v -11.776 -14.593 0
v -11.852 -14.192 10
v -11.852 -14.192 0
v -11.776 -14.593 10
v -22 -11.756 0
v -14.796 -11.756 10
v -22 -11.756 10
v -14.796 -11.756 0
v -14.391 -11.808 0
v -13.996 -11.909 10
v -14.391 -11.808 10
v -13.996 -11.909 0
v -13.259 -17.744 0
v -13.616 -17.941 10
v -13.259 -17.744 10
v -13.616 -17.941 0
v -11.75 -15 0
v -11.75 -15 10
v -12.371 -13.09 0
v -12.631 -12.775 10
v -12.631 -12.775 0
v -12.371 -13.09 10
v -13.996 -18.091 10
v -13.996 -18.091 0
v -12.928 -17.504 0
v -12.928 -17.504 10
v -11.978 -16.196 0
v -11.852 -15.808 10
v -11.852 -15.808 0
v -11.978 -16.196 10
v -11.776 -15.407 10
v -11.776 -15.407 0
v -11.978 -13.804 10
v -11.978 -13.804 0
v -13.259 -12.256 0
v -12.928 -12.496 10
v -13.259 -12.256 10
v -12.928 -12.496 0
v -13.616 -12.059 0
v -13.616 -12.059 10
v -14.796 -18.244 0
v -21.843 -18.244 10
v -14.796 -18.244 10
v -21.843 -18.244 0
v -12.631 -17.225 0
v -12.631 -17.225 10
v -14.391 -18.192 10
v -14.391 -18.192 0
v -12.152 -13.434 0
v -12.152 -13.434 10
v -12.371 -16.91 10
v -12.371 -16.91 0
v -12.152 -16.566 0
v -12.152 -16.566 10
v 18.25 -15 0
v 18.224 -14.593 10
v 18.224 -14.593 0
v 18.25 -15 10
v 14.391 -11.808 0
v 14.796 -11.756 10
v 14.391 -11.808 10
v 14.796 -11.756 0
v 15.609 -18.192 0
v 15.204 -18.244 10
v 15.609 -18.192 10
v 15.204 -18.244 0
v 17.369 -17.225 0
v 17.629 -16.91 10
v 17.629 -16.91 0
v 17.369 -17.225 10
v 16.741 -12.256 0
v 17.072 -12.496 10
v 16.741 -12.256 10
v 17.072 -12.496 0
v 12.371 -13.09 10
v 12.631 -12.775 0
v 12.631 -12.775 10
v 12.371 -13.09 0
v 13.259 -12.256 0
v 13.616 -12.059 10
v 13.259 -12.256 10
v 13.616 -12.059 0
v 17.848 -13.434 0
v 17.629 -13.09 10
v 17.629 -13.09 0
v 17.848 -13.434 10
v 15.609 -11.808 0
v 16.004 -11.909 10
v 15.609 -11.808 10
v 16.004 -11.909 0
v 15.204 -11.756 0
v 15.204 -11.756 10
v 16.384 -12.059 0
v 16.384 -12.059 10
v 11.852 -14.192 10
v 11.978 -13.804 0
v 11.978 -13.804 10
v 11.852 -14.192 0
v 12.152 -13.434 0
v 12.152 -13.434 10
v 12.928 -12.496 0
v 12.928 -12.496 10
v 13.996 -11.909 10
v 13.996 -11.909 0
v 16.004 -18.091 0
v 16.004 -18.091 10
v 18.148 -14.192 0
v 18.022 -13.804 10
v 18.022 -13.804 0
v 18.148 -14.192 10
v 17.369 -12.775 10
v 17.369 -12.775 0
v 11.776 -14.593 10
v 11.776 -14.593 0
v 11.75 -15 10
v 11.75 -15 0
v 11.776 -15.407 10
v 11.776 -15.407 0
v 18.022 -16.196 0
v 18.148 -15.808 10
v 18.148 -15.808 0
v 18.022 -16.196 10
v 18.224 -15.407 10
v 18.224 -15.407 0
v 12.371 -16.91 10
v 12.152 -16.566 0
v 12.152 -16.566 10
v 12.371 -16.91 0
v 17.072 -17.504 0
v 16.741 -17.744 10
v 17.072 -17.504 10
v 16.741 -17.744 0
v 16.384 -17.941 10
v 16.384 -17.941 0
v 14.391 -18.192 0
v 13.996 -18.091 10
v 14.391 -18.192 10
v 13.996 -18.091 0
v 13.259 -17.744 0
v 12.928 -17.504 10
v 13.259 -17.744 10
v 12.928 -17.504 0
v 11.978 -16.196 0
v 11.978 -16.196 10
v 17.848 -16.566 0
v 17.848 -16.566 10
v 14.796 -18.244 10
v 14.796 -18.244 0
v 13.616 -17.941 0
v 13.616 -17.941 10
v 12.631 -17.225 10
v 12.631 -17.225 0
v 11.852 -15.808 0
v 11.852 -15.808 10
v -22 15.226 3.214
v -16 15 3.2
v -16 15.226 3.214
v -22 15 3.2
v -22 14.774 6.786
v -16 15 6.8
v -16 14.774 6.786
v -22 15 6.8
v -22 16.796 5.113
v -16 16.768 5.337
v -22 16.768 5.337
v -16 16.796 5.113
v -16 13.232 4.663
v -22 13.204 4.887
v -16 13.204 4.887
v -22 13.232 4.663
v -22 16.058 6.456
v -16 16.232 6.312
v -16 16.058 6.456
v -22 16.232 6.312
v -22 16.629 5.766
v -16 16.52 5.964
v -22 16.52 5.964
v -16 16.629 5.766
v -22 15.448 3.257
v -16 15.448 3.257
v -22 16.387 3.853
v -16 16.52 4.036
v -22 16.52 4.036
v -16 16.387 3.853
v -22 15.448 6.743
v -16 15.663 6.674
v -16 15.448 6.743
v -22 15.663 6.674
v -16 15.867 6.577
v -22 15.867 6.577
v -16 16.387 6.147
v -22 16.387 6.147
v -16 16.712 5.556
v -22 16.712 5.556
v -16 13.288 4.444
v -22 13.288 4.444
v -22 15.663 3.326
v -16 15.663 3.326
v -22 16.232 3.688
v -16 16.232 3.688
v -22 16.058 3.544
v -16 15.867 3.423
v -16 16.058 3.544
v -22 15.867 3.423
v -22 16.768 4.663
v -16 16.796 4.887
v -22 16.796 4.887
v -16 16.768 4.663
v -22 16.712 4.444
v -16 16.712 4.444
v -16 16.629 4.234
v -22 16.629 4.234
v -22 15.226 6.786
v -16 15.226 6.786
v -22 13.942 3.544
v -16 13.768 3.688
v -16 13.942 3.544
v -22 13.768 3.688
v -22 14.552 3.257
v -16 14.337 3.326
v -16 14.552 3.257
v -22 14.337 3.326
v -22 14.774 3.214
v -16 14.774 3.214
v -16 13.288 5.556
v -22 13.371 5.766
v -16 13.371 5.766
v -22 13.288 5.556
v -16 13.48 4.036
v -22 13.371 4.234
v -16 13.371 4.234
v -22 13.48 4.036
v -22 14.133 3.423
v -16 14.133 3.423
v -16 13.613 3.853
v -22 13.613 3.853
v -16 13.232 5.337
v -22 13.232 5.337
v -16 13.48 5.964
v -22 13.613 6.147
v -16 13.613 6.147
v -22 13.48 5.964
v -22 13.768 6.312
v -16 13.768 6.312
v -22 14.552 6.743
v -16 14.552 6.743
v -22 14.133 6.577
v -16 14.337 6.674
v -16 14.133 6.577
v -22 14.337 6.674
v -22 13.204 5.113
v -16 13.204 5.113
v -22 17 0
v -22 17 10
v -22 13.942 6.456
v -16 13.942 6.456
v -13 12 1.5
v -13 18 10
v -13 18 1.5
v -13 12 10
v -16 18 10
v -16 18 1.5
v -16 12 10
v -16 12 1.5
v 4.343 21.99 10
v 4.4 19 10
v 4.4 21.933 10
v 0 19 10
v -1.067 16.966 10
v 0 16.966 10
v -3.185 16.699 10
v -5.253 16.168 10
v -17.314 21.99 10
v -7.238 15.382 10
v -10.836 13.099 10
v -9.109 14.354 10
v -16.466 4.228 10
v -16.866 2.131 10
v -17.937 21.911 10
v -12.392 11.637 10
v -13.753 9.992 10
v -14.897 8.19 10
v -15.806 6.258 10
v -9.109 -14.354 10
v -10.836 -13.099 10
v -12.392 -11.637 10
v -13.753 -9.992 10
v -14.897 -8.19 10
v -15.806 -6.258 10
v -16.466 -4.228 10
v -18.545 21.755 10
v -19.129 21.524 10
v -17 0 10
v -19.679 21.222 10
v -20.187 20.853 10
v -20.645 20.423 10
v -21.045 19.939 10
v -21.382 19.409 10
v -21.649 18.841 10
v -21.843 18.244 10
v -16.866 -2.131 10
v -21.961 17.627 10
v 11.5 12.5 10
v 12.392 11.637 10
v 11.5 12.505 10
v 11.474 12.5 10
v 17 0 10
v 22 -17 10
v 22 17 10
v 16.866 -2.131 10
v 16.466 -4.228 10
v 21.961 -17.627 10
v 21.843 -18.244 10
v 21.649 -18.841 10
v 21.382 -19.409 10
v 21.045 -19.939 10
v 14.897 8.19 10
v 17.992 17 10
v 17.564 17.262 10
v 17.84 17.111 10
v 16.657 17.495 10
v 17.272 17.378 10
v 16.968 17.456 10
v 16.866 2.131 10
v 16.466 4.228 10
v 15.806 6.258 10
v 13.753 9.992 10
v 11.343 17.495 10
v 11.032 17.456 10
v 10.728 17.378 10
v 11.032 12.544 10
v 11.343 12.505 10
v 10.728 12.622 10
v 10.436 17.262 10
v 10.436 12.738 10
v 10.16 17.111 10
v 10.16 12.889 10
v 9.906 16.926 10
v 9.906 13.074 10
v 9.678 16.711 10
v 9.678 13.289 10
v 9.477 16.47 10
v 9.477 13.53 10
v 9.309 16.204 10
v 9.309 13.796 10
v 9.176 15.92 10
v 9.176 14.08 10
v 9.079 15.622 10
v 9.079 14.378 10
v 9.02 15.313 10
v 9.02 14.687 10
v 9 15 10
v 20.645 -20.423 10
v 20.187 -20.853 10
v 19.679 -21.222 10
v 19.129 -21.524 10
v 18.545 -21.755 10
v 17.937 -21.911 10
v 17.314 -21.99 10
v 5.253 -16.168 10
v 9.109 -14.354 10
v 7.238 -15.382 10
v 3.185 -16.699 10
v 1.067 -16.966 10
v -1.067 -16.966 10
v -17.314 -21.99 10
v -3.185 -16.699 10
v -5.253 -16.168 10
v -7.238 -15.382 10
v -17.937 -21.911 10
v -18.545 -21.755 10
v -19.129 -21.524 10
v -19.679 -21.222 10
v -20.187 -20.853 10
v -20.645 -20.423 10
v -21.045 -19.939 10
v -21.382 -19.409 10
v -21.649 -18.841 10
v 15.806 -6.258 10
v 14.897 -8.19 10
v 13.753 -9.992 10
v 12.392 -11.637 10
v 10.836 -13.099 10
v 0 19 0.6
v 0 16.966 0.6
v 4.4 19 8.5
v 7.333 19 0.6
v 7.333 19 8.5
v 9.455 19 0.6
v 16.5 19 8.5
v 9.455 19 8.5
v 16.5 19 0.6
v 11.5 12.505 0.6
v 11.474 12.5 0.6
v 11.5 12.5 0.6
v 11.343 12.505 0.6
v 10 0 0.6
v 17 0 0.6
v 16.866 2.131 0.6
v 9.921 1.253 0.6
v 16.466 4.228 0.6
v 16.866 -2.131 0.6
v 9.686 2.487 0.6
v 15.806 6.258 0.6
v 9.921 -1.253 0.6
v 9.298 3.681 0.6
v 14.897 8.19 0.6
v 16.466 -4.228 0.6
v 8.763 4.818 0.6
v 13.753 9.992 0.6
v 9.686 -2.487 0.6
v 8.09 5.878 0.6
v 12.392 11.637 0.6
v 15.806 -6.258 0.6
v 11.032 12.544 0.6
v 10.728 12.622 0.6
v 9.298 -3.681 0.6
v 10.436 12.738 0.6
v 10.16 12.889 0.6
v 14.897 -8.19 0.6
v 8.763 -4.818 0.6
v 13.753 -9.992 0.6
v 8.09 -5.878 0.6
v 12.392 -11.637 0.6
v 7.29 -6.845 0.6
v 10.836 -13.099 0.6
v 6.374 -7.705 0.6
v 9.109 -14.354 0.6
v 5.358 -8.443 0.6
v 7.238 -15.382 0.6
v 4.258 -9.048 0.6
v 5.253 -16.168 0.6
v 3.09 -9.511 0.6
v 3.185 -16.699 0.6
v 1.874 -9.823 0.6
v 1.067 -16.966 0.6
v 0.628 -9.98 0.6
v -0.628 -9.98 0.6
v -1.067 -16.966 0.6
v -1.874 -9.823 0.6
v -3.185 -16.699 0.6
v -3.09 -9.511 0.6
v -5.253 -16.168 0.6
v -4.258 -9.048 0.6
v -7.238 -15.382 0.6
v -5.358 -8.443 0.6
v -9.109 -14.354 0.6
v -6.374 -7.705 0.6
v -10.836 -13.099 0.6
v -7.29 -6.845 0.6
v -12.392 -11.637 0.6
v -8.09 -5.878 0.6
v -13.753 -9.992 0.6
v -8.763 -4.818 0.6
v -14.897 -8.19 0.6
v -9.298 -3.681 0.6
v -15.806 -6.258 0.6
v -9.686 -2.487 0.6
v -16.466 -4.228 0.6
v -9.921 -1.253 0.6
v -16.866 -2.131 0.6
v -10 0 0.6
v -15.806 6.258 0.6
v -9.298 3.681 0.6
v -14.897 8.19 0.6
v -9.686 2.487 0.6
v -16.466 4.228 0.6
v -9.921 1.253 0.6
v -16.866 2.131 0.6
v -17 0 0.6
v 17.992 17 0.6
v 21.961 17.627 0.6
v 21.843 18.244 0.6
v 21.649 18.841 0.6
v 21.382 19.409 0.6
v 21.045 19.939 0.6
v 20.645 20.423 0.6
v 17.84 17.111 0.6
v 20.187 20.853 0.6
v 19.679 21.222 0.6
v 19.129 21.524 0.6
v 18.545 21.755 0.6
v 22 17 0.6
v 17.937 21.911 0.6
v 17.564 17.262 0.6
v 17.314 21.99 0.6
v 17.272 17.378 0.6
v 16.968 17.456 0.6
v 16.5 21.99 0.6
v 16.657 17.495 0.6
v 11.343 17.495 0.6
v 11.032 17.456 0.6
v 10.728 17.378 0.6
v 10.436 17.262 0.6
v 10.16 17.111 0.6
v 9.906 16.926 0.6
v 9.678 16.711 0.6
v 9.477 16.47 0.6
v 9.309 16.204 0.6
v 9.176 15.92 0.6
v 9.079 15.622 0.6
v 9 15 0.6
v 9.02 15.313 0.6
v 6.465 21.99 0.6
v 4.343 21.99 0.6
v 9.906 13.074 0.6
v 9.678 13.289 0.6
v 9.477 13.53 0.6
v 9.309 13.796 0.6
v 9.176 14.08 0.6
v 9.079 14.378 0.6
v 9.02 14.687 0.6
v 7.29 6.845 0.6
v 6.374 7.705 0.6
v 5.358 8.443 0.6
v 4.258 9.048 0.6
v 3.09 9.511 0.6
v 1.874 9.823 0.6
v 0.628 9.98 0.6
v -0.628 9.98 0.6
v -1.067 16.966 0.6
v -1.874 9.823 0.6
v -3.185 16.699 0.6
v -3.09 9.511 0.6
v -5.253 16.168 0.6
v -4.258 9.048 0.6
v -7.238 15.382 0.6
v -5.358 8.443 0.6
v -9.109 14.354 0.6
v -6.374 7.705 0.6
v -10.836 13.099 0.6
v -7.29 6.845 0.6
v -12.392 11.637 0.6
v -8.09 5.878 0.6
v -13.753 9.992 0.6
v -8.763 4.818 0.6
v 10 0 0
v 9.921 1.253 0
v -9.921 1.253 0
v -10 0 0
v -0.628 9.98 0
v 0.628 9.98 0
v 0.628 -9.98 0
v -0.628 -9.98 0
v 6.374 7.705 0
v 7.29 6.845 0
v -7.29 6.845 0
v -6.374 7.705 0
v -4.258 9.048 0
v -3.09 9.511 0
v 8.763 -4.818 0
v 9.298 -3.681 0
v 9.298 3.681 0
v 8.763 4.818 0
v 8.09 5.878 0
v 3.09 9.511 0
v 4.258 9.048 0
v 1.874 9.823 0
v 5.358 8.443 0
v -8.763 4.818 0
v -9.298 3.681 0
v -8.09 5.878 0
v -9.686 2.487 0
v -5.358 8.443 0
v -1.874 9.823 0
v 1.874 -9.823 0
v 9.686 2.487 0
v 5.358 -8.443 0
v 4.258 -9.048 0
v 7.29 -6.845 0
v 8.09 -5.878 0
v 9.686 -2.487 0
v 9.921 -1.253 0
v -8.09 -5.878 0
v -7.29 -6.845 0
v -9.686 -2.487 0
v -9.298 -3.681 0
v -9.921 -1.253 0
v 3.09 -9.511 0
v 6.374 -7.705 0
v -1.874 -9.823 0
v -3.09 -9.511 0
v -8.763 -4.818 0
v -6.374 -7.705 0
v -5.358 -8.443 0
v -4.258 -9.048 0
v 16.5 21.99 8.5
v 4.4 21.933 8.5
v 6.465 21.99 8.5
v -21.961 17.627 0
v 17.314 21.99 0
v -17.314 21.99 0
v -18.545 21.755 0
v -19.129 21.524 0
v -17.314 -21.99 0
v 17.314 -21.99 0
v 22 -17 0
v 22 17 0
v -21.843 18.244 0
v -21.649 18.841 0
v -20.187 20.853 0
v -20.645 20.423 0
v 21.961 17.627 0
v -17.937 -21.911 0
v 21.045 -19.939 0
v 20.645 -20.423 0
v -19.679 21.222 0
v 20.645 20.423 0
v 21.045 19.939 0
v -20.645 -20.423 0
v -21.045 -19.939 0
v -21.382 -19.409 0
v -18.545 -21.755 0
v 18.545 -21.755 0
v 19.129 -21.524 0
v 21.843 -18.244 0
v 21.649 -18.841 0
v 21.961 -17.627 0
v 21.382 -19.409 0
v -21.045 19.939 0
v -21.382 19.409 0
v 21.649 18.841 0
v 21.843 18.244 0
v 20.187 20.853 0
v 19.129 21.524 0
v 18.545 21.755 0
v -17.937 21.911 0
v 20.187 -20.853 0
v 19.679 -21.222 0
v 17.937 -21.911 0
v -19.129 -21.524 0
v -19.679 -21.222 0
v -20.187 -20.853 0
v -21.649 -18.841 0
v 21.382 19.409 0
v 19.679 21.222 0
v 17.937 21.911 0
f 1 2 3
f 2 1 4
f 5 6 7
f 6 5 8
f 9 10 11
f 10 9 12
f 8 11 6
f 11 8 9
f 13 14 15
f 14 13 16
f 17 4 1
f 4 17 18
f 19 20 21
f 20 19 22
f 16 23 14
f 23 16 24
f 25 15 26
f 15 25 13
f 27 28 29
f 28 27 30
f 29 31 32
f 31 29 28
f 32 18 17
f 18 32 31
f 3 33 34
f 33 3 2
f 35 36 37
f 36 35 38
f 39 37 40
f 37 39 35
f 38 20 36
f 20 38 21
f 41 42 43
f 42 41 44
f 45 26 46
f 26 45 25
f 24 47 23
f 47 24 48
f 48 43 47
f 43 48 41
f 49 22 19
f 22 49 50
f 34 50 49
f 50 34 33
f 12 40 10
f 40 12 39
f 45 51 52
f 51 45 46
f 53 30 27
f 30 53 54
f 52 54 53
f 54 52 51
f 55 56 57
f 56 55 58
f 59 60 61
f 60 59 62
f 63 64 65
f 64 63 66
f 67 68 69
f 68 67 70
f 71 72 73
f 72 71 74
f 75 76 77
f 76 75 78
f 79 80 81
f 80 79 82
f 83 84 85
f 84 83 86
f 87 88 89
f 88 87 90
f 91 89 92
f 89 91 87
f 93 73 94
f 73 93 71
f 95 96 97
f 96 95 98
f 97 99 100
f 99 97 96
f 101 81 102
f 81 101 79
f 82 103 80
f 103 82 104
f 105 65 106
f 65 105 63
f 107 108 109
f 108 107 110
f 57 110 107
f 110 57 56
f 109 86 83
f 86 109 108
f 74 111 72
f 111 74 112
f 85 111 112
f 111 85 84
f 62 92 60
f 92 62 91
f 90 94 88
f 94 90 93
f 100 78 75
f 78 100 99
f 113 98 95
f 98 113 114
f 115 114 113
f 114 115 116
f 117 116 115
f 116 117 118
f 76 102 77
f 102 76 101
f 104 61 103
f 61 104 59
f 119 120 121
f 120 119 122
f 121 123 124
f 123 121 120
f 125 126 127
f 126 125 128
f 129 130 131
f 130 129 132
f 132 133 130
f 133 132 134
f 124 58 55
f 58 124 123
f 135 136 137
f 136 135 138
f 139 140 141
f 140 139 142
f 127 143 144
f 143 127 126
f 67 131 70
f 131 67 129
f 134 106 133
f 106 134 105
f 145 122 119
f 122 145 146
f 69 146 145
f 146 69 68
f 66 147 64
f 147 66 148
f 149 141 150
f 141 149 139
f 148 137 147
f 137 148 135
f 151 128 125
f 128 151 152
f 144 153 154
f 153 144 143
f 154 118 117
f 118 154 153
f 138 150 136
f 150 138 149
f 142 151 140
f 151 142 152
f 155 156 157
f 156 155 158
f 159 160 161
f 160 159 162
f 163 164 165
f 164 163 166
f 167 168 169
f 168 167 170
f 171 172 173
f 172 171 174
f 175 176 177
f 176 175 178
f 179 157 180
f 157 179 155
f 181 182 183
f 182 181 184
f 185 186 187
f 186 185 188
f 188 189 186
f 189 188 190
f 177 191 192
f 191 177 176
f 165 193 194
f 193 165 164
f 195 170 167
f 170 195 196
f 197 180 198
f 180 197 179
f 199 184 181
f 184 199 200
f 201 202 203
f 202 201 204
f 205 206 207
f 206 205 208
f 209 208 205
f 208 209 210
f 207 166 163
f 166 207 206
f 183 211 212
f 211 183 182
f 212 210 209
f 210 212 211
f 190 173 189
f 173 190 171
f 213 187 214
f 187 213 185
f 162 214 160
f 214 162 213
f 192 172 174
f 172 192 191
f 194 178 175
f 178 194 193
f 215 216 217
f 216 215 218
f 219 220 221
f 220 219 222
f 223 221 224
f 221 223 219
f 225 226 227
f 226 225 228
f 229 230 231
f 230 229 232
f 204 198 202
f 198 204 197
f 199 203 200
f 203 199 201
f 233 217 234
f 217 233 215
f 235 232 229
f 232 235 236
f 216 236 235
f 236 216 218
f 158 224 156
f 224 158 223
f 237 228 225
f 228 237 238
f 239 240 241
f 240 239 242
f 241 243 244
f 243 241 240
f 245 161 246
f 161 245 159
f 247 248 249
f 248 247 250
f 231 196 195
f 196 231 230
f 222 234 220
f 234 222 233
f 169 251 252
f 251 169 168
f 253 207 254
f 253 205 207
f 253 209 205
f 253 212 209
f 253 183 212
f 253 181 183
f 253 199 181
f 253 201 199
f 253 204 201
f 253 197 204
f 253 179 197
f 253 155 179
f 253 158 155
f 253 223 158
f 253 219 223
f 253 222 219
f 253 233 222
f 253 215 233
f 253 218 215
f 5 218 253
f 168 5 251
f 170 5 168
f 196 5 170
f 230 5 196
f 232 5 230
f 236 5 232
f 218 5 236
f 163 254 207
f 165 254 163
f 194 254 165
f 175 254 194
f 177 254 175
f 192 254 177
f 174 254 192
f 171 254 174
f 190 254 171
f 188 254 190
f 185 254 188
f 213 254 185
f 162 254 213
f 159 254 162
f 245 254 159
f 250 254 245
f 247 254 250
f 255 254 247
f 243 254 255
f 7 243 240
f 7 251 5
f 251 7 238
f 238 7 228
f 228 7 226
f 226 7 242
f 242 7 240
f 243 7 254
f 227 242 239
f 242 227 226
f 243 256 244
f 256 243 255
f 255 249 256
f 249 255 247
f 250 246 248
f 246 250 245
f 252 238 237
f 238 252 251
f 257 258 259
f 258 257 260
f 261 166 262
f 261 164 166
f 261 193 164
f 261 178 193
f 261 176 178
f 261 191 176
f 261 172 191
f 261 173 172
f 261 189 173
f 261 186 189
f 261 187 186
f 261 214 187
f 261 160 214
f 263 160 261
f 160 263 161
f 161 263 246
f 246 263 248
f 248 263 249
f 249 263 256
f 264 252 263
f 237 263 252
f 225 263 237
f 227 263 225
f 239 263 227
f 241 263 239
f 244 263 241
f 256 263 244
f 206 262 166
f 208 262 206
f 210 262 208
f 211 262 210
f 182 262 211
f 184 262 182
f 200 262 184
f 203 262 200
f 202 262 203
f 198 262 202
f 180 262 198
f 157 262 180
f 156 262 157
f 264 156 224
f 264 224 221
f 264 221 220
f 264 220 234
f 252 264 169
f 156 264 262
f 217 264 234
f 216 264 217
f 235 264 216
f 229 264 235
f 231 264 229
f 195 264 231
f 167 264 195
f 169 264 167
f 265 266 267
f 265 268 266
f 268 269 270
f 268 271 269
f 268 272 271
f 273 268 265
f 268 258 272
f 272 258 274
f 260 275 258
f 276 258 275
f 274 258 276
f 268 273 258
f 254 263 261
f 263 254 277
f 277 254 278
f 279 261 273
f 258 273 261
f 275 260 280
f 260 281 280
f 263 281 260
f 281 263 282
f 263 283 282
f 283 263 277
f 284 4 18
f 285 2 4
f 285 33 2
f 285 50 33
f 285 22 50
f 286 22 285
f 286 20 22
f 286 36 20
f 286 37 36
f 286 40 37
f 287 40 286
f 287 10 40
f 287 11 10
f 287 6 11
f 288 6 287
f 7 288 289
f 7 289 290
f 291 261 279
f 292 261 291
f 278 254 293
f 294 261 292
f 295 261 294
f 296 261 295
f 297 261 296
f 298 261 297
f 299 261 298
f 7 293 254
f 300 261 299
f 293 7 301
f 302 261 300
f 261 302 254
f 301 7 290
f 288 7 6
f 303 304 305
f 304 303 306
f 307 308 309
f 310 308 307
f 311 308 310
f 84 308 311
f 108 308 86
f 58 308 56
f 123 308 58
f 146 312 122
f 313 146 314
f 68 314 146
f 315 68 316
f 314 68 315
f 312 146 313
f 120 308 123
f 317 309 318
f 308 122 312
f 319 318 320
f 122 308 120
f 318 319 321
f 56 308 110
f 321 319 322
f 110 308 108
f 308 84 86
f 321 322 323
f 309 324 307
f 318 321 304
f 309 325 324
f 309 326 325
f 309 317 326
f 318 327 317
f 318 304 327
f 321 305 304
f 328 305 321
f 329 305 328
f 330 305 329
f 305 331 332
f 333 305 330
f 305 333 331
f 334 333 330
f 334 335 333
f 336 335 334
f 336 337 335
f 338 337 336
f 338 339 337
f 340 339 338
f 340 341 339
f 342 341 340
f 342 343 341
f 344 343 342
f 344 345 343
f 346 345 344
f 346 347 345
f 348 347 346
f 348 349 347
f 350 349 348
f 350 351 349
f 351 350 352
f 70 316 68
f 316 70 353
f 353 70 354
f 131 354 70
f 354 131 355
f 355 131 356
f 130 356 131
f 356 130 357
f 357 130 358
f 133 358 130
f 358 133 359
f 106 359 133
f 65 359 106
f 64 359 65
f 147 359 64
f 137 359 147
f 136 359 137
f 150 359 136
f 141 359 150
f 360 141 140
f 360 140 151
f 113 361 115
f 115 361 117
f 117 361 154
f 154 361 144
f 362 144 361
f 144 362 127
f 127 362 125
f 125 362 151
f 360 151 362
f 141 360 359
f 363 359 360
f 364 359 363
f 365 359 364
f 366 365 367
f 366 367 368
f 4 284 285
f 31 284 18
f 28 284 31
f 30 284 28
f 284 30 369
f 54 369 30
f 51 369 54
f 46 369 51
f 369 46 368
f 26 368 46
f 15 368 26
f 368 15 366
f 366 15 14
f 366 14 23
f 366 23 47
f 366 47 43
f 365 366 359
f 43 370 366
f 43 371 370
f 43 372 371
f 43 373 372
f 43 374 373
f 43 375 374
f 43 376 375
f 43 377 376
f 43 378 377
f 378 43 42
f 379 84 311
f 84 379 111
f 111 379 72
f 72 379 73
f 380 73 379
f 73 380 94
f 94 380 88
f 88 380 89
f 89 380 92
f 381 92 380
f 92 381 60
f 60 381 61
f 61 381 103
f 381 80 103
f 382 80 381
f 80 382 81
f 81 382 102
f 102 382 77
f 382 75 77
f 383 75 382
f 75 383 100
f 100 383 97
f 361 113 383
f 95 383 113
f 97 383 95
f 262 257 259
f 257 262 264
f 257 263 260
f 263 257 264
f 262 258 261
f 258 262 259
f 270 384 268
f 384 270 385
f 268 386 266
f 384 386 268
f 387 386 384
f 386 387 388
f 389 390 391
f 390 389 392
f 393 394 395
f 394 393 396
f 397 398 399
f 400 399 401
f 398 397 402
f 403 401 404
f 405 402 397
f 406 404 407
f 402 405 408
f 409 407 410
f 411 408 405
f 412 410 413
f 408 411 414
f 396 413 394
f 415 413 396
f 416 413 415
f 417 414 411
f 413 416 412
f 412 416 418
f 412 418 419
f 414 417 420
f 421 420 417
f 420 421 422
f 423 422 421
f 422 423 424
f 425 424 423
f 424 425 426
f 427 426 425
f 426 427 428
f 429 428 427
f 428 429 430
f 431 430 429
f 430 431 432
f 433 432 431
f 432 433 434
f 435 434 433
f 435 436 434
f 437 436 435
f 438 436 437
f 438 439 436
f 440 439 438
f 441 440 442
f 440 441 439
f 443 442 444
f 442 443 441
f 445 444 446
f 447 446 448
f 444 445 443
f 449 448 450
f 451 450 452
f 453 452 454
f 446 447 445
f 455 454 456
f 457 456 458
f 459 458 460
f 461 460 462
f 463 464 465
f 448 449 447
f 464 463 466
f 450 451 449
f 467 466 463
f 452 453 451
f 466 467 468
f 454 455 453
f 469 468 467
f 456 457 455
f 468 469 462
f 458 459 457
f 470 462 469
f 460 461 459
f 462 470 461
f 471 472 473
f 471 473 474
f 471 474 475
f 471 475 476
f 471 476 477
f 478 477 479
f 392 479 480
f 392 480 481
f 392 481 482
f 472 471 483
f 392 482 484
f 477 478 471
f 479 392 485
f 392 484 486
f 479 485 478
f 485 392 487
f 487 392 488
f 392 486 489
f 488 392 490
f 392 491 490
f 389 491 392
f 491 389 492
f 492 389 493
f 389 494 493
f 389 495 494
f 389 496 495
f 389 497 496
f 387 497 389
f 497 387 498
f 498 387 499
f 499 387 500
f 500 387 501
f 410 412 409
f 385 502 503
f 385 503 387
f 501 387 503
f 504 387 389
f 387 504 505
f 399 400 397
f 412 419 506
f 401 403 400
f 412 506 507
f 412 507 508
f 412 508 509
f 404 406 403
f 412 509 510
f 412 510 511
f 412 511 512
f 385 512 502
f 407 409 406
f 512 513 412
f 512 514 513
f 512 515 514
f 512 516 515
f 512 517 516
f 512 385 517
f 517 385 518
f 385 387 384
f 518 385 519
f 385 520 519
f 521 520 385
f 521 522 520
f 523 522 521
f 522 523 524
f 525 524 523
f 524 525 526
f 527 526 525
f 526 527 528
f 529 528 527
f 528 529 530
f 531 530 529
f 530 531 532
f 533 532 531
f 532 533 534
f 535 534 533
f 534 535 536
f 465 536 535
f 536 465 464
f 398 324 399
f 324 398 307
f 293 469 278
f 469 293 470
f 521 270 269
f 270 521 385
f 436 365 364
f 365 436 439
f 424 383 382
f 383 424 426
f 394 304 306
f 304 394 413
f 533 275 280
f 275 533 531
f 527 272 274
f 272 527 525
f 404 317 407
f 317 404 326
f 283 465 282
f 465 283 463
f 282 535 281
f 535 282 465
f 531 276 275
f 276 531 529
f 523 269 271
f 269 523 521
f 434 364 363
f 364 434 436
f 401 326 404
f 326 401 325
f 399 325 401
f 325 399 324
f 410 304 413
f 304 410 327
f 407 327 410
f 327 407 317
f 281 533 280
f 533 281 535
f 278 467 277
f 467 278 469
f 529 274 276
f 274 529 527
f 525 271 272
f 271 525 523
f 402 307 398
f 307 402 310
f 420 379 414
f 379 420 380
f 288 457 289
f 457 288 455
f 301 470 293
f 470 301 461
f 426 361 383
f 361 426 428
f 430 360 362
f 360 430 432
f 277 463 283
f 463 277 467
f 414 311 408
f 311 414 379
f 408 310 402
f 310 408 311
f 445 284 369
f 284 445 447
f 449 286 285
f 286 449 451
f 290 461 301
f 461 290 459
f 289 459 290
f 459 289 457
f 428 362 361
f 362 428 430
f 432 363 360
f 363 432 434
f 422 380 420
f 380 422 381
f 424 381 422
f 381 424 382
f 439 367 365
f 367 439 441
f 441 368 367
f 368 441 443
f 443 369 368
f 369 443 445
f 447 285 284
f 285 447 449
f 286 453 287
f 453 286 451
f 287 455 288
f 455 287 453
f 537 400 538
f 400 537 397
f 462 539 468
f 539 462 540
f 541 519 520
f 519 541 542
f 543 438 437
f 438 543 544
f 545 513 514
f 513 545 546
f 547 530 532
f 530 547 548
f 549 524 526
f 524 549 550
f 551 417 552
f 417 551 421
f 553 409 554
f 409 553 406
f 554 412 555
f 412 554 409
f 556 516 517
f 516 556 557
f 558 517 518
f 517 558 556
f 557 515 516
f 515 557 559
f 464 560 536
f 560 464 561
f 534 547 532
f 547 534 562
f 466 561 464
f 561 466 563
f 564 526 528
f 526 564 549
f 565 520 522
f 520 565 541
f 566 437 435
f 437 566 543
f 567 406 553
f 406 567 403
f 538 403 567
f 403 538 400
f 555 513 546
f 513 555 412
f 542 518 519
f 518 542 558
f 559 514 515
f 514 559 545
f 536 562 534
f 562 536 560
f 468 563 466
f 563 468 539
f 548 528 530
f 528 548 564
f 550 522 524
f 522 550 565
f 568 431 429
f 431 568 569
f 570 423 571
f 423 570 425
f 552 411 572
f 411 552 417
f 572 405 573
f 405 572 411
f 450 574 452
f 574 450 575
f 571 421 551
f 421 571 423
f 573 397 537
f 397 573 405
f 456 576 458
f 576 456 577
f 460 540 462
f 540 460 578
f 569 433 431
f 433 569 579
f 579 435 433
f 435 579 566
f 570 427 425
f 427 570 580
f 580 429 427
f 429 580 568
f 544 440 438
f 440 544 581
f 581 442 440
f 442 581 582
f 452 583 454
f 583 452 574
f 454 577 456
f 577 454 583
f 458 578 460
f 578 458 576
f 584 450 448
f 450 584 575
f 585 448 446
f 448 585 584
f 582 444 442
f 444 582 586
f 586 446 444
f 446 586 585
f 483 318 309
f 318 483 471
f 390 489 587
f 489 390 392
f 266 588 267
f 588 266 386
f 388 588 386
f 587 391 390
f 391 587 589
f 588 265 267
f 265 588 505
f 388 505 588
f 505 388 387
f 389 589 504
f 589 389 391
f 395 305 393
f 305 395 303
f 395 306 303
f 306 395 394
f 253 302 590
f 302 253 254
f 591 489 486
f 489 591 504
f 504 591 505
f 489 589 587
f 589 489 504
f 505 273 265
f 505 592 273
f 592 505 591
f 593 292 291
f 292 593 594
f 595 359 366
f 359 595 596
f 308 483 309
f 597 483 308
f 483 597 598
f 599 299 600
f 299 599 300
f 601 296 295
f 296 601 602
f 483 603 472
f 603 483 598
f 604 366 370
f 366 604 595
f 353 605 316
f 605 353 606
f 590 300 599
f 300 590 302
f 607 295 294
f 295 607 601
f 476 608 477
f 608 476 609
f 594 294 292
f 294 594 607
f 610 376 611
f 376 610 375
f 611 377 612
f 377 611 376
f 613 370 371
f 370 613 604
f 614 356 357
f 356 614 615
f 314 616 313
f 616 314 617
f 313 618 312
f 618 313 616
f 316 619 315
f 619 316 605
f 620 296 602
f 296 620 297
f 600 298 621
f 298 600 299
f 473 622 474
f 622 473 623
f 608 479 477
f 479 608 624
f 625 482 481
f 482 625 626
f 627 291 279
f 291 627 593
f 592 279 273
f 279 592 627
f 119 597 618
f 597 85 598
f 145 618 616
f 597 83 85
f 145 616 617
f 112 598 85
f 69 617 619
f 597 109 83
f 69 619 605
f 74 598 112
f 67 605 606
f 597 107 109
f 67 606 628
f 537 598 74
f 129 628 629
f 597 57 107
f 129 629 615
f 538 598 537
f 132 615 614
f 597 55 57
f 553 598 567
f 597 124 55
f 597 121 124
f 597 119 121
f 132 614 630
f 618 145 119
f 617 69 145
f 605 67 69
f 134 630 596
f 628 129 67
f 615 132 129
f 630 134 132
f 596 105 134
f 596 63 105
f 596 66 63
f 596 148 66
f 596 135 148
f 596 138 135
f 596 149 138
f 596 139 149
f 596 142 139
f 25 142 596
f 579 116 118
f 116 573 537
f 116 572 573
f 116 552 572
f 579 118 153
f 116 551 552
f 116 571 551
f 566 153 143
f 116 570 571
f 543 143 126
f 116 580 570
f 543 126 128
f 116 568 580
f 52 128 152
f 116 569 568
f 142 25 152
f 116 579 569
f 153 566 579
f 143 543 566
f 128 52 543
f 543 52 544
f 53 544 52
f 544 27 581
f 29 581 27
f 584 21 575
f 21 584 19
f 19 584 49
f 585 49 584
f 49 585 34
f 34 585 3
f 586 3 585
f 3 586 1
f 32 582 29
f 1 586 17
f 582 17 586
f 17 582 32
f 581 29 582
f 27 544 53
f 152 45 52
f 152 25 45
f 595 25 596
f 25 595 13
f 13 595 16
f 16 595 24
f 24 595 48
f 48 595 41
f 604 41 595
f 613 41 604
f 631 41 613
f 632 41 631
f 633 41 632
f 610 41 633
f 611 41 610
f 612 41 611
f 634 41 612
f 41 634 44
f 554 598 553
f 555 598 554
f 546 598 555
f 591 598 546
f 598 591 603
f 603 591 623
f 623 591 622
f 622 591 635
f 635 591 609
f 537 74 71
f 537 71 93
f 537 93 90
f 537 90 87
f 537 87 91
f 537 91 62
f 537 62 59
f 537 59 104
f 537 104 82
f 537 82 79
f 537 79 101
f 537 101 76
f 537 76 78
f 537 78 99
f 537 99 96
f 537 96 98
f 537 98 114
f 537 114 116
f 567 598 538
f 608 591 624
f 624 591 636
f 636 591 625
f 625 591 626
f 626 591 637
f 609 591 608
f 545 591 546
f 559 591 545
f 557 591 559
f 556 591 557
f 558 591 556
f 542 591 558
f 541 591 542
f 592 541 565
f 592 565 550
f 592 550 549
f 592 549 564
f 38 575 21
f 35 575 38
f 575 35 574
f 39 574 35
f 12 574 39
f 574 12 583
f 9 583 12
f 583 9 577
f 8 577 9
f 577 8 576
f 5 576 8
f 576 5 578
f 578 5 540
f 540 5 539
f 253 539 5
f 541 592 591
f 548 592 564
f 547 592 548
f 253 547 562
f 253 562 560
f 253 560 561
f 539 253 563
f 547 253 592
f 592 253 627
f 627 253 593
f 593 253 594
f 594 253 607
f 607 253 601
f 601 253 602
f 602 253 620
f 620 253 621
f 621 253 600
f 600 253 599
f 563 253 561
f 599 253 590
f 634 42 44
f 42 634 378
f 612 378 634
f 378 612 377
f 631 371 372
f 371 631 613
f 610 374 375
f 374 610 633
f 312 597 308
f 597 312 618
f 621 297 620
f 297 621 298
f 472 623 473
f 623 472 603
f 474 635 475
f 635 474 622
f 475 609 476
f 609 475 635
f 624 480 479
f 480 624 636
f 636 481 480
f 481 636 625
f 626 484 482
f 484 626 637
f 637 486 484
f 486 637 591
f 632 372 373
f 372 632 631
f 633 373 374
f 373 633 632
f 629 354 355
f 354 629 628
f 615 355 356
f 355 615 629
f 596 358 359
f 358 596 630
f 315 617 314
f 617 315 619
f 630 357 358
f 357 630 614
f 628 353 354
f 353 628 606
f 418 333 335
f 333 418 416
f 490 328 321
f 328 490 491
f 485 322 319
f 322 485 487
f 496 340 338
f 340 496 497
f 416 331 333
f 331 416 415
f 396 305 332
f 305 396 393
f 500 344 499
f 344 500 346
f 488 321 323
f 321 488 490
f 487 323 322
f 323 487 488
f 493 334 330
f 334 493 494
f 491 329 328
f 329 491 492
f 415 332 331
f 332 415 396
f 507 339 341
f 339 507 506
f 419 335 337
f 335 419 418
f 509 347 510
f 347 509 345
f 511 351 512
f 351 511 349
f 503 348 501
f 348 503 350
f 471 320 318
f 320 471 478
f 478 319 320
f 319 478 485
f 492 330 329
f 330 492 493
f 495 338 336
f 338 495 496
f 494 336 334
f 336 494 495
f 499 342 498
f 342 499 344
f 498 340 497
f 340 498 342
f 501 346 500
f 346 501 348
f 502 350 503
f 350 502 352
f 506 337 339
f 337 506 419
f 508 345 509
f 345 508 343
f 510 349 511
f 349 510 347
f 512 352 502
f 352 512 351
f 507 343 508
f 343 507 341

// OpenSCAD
$fn = 50;


union() {
	difference() {
		union() {
			translate(v = [0, 0, 0]) {
				rotate(a = [0, 0, 0]) {
					hull() {
						translate(v = [-17.0000000000, 17.0000000000, 0]) {
							rotate(a = [0, 0, 0]) {
								translate(v = [0, 0, 0]) {
									rotate(a = [0, 0, 0]) {
										cylinder(h = 10, r = 5);
									}
								}
							}
						}
						translate(v = [17.0000000000, 17.0000000000, 0]) {
							rotate(a = [0, 0, 0]) {
								translate(v = [0, 0, 0]) {
									rotate(a = [0, 0, 0]) {
										cylinder(h = 10, r = 5);
									}
								}
							}
						}
						translate(v = [-17.0000000000, -17.0000000000, 0]) {
							rotate(a = [0, 0, 0]) {
								translate(v = [0, 0, 0]) {
									rotate(a = [0, 0, 0]) {
										cylinder(h = 10, r = 5);
									}
								}
							}
						}
						translate(v = [17.0000000000, -17.0000000000, 0]) {
							rotate(a = [0, 0, 0]) {
								translate(v = [0, 0, 0]) {
									rotate(a = [0, 0, 0]) {
										cylinder(h = 10, r = 5);
									}
								}
							}
						}
					}
				}
			}
		}
		union() {
			translate(v = [-22.5000000000, -15.0000000000, -125]) {
				rotate(a = [0, 0, 0]) {
					hull() {
						translate(v = [7.5000000000, 0, 0]) {
							rotate(a = [0, 0, 0]) {
								translate(v = [0, 0, 0]) {
									rotate(a = [0, 0, 0]) {
										cylinder(h = 250, r = 3.2500000000);
									}
								}
							}
						}
						translate(v = [-7.5000000000, 0, 0]) {
							rotate(a = [0, 0, 0]) {
								translate(v = [0, 0, 0]) {
									rotate(a = [0, 0, 0]) {
										cylinder(h = 250, r = 3.2500000000);
									}
								}
							}
						}
					}
				}
			}
			translate(v = [15.0000000000, -15.0000000000, -125.0000000000]) {
				rotate(a = [0, 0, 0]) {
					cylinder(h = 250, r = 3.2500000000);
				}
			}
			translate(v = [-22.0000000000, 15.0000000000, 5.0000000000]) {
				rotate(a = [0, 90, 0]) {
					cylinder(h = 9, r = 1.8000000000);
				}
			}
			translate(v = [-16.0000000000, 12.0000000000, 1.5000000000]) {
				rotate(a = [0, 0, 0]) {
					cube(size = [3, 6, 8.5000000000]);
				}
			}
			translate(v = [0.0000000000, 11.0000000000, 0.6000000000]) {
				rotate(a = [0, 0, 0]) {
					cube(size = [11, 8, 12.4000000000]);
				}
			}
			translate(v = [0, 0, 0.6000000000]) {
				rotate(a = [0, 0, 0]) {
					cylinder(h = 12.4000000000, r = 17.0000000000);
				}
			}
			translate(v = [0, 0, -5.0000000000]) {
				rotate(a = [0, 0, 0]) {
					cylinder(h = 10, r = 10.0000000000);
				}
			}
			translate(v = [0.0000000000, 17.0000000000, 0.6000000000]) {
				rotate(a = [0, 0, 0]) {
					cube(size = [22.0000000000, 2, 12.4000000000]);
				}
			}
			translate(v = [16.5000000000, 17.0000000000, 0.6000000000]) {
				rotate(a = [0, 0, 0]) {
					cube(size = [5.5000000000, 5, 12.4000000000]);
				}
			}
			translate(v = [4.4000000000, 17.0000000000, 8.5000000000]) {
				rotate(a = [0, 0, 0]) {
					cube(size = [17.6000000000, 5, 1.5000000000]);
				}
			}
			translate(v = [3.5833333333, 22.7500000000, 0.6000000000]) {
				rotate(a = [0, 0, -45]) {
					cube(size = [7.5000000000, 1.5000000000, 12.4000000000]);
				}
			}
			translate(v = [2.5000000000, 12.5000000000, 0.6000000000]) {
				rotate(a = [0, 0, 0]) {
					cube(size = [9.0000000000, 5, 9.4000000000]);
				}
			}
		}
	}
	union() {
		translate(v = [14, 15, 0]) {
			rotate(a = [0, 0, 0]) {
				hull() {
					translate(v = [2.5000000000, 0, 0]) {
						rotate(a = [0, 0, 0]) {
							translate(v = [0, 0, 0]) {
								rotate(a = [0, 0, 0]) {
									cylinder(h = 10, r = 2.5000000000);
								}
							}
						}
					}
					translate(v = [-2.5000000000, 0, 0]) {
						rotate(a = [0, 0, 0]) {
							translate(v = [0, 0, 0]) {
								rotate(a = [0, 0, 0]) {
									cylinder(h = 10, r = 2.5000000000);
								}
							}
						}
					}
				}
			}
		}
	}
}
